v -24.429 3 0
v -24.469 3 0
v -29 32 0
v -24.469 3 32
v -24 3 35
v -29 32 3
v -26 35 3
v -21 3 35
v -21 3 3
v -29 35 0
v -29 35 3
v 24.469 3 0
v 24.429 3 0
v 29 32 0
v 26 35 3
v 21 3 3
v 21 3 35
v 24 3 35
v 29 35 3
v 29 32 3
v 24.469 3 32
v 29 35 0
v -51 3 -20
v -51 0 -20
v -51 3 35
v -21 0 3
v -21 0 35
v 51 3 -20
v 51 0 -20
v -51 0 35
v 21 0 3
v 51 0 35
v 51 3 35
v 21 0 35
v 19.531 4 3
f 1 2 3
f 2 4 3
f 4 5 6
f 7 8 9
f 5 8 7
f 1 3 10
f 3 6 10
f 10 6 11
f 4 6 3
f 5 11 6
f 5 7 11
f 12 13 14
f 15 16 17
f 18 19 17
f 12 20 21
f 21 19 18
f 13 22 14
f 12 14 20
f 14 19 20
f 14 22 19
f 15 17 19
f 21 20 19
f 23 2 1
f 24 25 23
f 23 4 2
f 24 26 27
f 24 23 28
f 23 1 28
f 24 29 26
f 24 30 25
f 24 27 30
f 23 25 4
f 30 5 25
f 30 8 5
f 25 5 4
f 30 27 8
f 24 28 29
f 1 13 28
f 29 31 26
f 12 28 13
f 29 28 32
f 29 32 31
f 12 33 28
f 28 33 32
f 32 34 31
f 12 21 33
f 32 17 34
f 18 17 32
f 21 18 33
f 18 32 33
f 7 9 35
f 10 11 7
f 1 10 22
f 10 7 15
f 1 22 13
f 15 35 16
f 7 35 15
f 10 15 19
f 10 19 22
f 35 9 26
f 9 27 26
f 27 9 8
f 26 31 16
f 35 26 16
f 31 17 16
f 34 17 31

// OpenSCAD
// Trapezoidal Cradle Bracket with Extended Tape Base (Sides and Bottom)
// Fits WOLFBOX G840S: Front 40mm, Back 50mm, Depth 35mm, Height 32mm

cam_front = 40;     
cam_back = 50;      
cam_depth = 35;     
cam_height = 32;    
wall = 3;           
clearance = 1;      

// Adjustable Tape Base Parameters
tape_wing_width = 25;      // Extra width on EACH side (mm)
tape_lower_extension = 20; // Extra surface area BELOW the base plate for tape (mm)

f_w = cam_front + (clearance * 2); 
b_w = cam_back + (clearance * 2);  
plate_w = b_w + (tape_wing_width * 2); 
plate_h = cam_height + wall + tape_lower_extension;

module rigid_camera_mount() {
    difference() {
        union() {
            // Front Adhesive Plate (against glass, extends downwards)
            translate([0, wall/2, (cam_height + wall - tape_lower_extension)/2])
                cube([plate_w, wall, plate_h], center=true);
            
            // Horizontal Base Plate (camera floor)
            linear_extrude(height = wall)
            polygon([
                [-(f_w/2 + wall), 0],
                [ (f_w/2 + wall), 0],
                [ (b_w/2 + wall), cam_depth],
                [-(b_w/2 + wall), cam_depth]
            ]);
            
            // Left Triangular Gusset
            hull() {
                translate([-(f_w/2 + wall), 0, 0])
                    cube([wall, wall, cam_height + wall]);
                translate([-(b_w/2 + wall), cam_depth - wall, 0])
                    cube([wall, wall, wall]);
            }
            
            // Right Triangular Gusset
            hull() {
                translate([(f_w/2), 0, 0])
                    cube([wall, wall, cam_height + wall]);
                translate([(b_w/2), cam_depth - wall, 0])
                    cube([wall, wall, wall]);
            }
        }
        
        // Rectangular Cutout for Camera Head
        translate([0, wall/2, (cam_height/2) + wall])
            cube([f_w, wall + 2, cam_height], center=true);
    }
}

rigid_camera_mount();
